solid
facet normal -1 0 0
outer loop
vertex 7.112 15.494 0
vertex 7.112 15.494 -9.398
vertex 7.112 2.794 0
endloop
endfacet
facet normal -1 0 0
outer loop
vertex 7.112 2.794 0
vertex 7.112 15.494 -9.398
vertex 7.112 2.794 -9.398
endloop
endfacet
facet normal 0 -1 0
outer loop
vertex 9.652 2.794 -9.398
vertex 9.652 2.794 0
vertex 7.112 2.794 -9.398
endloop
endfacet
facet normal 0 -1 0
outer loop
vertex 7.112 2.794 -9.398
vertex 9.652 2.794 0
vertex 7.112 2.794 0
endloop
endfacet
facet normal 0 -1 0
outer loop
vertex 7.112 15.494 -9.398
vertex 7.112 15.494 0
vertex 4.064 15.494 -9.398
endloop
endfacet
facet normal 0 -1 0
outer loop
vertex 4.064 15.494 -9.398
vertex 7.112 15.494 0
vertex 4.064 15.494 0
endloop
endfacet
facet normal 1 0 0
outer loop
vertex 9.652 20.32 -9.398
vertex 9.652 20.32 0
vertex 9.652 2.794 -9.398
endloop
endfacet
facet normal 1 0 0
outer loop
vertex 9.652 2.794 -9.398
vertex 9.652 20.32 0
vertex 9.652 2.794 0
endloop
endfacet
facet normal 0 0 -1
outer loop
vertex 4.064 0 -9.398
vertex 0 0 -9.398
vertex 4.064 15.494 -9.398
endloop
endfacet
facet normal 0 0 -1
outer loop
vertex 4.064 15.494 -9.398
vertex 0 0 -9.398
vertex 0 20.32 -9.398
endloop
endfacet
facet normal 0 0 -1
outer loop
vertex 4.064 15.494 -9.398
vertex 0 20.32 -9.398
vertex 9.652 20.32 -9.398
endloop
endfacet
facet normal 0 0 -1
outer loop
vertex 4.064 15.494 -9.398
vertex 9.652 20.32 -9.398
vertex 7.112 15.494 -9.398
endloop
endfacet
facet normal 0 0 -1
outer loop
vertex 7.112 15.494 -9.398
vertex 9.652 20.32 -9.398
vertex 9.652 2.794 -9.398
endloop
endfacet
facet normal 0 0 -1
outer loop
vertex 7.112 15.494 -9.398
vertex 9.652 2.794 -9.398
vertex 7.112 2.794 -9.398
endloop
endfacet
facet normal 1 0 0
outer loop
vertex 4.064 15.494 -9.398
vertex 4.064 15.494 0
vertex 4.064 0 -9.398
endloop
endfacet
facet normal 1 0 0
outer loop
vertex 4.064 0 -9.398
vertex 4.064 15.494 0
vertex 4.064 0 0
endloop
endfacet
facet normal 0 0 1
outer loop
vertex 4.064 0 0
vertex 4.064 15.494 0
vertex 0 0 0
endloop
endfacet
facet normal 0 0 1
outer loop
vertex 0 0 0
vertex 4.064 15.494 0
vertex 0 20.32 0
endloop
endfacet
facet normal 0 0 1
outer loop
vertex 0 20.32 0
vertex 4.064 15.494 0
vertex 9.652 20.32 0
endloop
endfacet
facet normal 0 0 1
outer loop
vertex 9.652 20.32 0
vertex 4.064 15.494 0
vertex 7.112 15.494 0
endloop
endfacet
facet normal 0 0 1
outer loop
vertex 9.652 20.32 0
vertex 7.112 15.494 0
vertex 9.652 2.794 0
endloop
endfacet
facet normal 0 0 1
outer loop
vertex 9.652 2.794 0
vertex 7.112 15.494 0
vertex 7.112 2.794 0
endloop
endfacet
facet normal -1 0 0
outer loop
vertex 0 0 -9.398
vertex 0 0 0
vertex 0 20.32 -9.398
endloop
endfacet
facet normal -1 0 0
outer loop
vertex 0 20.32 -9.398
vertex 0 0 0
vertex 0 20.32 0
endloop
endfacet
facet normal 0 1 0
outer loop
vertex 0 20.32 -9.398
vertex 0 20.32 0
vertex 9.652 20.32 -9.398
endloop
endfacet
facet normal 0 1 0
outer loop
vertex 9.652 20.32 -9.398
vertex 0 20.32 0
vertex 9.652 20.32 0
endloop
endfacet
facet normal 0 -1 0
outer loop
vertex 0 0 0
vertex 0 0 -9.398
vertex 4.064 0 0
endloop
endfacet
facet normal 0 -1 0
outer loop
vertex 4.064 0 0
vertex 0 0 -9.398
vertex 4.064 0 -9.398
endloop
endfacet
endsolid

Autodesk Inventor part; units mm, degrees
ref_plane "YZ Plane" through (0, 0, 0) normal (1, 0, 0) x (0, 1, 0)
ref_plane "XZ Plane" through (0, 0, 0) normal (0, 1, 0) x (-1, 0, 0)
ref_plane "XY Plane" through (0, 0, 0) normal (0, 0, 1) x (1, 0, 0)
sketch "Sketch1" plane through (0, 0, 0) normal (0, 1, 0) x (-1, 0, 0)
  line L0 (0, 0) -> (-4.064, 0)
  line L1 (-4.064, 0) -> (-4.064, -9.398)
  line L2 (-4.064, -9.398) -> (0, -9.398)
  line L3 (0, -9.398) -> (0, 0)
  dimension "d0" = 4.064
  dimension "d1" = 9.398
extrude "Extrusion1" add sketch "Sketch1" along normal blind 20.32
sketch "Sketch3" plane through (4.064, 0, 0) normal (1, 0, 0) x (0, 0, -1)
  line L0 (9.398, 20.32) -> (0, 20.32) projected
  line L1 (9.398, 0) -> (9.398, 20.32) projected
  line L2 (0, 20.32) -> (9.398, 20.32)
  line L3 (9.398, 20.32) -> (9.398, 15.494)
  line L4 (9.398, 15.494) -> (0, 15.494)
  line L5 (0, 15.494) -> (0, 20.32)
  point P0 (0, 0)
  dimension "d5" = 4.826
extrude "Extrusion2" add sketch "Sketch3" along normal blind 5.588
sketch "Sketch4" plane through (4.064, 15.494, -9.398) normal (0, -1, 0) x (1, 0, 0)
  line L0 (5.588, 0) -> (5.588, 9.398) projected
  line L1 (-4.064, 0) -> (5.588, 0) projected
  line L2 (5.588, 9.398) -> (3.048, 9.398)
  line L3 (3.048, 9.398) -> (3.048, 0)
  line L4 (3.048, 0) -> (5.588, 0)
  line L5 (5.588, 0) -> (5.588, 9.398)
  point P0 (-4.064, 9.398)
  dimension "d8" = 2.54
extrude "Extrusion3" add sketch "Sketch4" along normal blind 12.7
properties part number "Mount Male"
